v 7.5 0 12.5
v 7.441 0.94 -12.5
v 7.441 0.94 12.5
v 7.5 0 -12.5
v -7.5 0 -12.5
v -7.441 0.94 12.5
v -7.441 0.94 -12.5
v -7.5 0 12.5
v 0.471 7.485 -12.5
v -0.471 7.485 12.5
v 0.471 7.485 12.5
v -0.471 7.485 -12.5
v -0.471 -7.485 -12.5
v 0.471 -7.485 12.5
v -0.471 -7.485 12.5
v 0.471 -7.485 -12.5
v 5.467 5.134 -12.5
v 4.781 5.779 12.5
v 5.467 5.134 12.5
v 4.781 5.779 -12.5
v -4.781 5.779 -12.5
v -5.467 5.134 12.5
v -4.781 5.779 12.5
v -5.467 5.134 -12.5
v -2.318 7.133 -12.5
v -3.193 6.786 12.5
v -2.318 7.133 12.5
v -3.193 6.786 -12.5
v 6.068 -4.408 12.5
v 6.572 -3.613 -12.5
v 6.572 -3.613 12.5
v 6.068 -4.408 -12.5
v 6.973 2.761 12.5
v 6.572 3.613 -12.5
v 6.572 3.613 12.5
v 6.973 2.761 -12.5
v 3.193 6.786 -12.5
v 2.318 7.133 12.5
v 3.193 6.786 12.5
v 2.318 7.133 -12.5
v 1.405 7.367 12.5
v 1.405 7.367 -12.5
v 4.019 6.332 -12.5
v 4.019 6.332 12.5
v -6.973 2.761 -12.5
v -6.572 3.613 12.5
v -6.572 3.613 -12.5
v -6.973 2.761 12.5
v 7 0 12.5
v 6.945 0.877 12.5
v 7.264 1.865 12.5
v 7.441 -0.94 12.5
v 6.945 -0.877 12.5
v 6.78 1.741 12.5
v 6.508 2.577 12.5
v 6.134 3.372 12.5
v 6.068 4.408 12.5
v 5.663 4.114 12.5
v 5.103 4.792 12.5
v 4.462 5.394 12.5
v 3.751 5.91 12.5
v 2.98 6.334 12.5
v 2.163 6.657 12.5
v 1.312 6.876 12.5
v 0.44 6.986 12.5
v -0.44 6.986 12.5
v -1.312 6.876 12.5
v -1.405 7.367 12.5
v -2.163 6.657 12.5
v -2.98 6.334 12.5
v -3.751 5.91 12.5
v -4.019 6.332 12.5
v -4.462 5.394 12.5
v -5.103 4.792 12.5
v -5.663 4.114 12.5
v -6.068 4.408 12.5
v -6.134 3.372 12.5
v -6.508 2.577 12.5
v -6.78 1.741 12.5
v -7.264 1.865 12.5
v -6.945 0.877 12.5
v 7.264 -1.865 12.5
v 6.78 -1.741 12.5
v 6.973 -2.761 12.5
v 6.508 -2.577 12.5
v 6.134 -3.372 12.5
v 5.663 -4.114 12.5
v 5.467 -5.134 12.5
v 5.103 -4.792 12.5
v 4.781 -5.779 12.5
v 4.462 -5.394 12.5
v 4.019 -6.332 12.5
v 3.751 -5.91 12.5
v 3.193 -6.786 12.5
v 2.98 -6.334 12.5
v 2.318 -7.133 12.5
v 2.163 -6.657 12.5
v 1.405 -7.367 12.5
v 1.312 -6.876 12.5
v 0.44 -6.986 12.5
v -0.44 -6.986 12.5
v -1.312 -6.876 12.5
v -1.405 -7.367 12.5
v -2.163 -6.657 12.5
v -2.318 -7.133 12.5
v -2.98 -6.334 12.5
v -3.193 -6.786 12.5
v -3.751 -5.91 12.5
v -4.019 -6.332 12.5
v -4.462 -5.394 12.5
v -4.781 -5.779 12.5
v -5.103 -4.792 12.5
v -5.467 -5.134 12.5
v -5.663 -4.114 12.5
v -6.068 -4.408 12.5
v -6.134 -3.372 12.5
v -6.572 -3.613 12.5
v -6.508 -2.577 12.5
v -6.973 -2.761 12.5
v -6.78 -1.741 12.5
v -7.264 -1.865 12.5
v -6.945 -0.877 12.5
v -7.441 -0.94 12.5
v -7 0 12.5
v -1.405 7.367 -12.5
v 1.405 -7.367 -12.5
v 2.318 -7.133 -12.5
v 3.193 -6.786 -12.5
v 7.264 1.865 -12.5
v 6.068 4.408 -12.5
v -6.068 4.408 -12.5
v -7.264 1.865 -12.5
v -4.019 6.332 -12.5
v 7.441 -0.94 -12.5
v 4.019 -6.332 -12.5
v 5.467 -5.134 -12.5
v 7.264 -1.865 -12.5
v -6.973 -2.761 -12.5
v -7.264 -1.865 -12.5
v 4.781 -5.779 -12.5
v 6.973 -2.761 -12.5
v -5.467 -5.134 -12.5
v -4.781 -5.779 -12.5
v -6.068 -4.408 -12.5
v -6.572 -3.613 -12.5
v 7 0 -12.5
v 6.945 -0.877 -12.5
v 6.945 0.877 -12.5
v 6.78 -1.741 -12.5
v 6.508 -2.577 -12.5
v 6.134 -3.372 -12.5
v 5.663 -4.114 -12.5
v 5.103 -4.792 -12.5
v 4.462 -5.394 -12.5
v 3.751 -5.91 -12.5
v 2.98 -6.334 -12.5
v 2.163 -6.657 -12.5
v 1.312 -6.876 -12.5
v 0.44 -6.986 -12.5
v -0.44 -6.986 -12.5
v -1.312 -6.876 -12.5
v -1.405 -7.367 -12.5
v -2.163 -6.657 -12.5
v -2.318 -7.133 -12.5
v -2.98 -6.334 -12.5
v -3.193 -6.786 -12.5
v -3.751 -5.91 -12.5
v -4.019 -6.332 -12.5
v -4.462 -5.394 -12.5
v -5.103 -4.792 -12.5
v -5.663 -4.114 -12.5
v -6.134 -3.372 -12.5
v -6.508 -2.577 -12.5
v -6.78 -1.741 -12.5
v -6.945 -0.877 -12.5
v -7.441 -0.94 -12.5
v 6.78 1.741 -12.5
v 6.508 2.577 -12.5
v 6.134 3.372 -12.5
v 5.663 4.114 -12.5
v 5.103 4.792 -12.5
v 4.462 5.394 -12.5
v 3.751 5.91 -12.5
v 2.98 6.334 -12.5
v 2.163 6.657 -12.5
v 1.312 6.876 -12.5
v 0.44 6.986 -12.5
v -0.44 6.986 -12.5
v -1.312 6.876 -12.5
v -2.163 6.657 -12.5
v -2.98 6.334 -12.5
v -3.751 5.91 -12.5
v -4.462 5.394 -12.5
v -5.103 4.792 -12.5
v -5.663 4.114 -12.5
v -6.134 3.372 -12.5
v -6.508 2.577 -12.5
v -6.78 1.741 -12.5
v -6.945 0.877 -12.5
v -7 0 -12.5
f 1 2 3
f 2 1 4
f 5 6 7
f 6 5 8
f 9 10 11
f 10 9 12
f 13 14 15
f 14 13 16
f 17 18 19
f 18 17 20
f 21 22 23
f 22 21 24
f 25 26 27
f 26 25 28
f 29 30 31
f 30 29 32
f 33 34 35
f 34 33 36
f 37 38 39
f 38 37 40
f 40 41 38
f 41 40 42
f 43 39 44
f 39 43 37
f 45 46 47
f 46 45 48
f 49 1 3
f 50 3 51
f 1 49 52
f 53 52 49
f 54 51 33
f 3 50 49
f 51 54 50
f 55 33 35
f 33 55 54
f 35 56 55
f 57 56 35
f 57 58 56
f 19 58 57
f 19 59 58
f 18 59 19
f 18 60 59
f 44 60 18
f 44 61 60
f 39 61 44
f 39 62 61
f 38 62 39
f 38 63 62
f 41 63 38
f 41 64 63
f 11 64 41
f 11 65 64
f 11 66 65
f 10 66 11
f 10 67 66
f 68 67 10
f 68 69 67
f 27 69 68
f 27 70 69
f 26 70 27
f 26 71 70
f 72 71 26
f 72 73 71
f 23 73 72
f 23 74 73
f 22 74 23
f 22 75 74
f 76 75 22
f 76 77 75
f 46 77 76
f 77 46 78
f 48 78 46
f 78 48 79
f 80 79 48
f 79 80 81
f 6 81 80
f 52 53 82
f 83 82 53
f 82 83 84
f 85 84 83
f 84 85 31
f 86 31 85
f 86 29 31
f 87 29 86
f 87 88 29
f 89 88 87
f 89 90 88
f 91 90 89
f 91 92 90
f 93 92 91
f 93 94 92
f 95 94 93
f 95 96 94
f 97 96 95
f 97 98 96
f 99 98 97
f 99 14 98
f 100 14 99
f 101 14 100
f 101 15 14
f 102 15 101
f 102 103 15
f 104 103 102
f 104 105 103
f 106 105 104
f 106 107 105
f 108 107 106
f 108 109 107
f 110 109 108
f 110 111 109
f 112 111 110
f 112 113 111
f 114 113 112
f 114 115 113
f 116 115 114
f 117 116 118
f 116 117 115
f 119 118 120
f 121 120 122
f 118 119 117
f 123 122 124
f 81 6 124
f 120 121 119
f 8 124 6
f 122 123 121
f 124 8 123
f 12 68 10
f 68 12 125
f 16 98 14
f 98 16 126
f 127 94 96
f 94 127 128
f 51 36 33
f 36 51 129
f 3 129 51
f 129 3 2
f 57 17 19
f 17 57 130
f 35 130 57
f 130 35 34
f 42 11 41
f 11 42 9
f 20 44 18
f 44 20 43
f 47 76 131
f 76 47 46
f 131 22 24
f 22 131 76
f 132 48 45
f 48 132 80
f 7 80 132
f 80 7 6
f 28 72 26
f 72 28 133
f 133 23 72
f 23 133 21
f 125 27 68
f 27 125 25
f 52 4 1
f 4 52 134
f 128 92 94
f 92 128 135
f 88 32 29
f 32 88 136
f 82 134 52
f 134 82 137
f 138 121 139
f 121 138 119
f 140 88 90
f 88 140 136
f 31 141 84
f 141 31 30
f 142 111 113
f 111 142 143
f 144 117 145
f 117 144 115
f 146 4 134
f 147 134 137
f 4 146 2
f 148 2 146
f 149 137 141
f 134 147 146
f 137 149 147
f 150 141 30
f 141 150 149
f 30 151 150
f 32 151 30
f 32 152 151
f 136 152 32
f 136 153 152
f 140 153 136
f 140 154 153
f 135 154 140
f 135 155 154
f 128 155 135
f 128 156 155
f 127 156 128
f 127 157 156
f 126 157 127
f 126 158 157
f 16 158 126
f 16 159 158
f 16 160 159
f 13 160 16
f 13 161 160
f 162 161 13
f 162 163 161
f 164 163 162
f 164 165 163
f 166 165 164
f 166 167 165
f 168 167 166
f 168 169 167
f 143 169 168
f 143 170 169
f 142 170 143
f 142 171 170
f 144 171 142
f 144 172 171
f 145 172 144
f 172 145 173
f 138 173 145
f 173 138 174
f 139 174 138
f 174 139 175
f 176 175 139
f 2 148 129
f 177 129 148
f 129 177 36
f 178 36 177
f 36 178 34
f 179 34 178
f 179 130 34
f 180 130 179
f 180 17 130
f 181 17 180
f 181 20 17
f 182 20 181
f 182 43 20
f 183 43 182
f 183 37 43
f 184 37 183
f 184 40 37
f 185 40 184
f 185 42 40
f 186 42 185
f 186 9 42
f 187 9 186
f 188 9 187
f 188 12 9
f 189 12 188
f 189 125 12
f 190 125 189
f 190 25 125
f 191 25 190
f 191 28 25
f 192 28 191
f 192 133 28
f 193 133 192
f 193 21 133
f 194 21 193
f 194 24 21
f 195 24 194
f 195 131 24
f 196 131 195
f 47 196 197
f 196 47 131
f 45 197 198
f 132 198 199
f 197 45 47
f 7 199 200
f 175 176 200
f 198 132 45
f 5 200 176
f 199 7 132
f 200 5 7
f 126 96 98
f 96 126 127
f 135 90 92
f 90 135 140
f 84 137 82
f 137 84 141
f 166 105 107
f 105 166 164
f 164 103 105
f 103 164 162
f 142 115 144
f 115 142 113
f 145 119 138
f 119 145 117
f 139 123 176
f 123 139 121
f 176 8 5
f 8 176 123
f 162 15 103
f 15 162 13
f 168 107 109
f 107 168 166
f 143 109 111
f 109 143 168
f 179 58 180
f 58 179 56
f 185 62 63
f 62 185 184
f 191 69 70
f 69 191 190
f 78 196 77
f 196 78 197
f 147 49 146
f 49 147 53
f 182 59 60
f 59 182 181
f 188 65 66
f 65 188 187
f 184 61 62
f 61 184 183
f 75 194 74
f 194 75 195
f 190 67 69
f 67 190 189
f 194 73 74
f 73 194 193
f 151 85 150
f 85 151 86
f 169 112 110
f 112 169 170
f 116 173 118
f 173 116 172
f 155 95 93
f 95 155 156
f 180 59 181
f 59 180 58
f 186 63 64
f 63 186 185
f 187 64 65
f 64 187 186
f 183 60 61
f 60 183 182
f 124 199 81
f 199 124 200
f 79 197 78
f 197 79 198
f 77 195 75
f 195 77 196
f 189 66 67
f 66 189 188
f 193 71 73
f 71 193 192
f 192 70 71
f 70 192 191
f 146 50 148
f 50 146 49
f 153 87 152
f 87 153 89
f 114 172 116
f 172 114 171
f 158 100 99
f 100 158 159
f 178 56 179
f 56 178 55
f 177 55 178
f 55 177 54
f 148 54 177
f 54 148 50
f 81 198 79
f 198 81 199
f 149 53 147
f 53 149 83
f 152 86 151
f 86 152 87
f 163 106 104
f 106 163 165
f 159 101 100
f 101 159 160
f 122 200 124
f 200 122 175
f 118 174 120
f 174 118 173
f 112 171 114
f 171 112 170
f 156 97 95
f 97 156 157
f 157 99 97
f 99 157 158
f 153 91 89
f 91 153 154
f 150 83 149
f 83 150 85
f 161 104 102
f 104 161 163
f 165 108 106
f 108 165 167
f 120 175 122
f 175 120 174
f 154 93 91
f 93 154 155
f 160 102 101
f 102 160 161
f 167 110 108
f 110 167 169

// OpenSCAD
$fn = 50;


difference() {
	union() {
		translate(v = [0, 0, -12.5000000000]) {
			cylinder(h = 25, r = 7.5000000000);
		}
	}
	union() {
		translate(v = [0, 0, -100.0000000000]) {
			cylinder(h = 200, r = 7);
		}
	}
}
